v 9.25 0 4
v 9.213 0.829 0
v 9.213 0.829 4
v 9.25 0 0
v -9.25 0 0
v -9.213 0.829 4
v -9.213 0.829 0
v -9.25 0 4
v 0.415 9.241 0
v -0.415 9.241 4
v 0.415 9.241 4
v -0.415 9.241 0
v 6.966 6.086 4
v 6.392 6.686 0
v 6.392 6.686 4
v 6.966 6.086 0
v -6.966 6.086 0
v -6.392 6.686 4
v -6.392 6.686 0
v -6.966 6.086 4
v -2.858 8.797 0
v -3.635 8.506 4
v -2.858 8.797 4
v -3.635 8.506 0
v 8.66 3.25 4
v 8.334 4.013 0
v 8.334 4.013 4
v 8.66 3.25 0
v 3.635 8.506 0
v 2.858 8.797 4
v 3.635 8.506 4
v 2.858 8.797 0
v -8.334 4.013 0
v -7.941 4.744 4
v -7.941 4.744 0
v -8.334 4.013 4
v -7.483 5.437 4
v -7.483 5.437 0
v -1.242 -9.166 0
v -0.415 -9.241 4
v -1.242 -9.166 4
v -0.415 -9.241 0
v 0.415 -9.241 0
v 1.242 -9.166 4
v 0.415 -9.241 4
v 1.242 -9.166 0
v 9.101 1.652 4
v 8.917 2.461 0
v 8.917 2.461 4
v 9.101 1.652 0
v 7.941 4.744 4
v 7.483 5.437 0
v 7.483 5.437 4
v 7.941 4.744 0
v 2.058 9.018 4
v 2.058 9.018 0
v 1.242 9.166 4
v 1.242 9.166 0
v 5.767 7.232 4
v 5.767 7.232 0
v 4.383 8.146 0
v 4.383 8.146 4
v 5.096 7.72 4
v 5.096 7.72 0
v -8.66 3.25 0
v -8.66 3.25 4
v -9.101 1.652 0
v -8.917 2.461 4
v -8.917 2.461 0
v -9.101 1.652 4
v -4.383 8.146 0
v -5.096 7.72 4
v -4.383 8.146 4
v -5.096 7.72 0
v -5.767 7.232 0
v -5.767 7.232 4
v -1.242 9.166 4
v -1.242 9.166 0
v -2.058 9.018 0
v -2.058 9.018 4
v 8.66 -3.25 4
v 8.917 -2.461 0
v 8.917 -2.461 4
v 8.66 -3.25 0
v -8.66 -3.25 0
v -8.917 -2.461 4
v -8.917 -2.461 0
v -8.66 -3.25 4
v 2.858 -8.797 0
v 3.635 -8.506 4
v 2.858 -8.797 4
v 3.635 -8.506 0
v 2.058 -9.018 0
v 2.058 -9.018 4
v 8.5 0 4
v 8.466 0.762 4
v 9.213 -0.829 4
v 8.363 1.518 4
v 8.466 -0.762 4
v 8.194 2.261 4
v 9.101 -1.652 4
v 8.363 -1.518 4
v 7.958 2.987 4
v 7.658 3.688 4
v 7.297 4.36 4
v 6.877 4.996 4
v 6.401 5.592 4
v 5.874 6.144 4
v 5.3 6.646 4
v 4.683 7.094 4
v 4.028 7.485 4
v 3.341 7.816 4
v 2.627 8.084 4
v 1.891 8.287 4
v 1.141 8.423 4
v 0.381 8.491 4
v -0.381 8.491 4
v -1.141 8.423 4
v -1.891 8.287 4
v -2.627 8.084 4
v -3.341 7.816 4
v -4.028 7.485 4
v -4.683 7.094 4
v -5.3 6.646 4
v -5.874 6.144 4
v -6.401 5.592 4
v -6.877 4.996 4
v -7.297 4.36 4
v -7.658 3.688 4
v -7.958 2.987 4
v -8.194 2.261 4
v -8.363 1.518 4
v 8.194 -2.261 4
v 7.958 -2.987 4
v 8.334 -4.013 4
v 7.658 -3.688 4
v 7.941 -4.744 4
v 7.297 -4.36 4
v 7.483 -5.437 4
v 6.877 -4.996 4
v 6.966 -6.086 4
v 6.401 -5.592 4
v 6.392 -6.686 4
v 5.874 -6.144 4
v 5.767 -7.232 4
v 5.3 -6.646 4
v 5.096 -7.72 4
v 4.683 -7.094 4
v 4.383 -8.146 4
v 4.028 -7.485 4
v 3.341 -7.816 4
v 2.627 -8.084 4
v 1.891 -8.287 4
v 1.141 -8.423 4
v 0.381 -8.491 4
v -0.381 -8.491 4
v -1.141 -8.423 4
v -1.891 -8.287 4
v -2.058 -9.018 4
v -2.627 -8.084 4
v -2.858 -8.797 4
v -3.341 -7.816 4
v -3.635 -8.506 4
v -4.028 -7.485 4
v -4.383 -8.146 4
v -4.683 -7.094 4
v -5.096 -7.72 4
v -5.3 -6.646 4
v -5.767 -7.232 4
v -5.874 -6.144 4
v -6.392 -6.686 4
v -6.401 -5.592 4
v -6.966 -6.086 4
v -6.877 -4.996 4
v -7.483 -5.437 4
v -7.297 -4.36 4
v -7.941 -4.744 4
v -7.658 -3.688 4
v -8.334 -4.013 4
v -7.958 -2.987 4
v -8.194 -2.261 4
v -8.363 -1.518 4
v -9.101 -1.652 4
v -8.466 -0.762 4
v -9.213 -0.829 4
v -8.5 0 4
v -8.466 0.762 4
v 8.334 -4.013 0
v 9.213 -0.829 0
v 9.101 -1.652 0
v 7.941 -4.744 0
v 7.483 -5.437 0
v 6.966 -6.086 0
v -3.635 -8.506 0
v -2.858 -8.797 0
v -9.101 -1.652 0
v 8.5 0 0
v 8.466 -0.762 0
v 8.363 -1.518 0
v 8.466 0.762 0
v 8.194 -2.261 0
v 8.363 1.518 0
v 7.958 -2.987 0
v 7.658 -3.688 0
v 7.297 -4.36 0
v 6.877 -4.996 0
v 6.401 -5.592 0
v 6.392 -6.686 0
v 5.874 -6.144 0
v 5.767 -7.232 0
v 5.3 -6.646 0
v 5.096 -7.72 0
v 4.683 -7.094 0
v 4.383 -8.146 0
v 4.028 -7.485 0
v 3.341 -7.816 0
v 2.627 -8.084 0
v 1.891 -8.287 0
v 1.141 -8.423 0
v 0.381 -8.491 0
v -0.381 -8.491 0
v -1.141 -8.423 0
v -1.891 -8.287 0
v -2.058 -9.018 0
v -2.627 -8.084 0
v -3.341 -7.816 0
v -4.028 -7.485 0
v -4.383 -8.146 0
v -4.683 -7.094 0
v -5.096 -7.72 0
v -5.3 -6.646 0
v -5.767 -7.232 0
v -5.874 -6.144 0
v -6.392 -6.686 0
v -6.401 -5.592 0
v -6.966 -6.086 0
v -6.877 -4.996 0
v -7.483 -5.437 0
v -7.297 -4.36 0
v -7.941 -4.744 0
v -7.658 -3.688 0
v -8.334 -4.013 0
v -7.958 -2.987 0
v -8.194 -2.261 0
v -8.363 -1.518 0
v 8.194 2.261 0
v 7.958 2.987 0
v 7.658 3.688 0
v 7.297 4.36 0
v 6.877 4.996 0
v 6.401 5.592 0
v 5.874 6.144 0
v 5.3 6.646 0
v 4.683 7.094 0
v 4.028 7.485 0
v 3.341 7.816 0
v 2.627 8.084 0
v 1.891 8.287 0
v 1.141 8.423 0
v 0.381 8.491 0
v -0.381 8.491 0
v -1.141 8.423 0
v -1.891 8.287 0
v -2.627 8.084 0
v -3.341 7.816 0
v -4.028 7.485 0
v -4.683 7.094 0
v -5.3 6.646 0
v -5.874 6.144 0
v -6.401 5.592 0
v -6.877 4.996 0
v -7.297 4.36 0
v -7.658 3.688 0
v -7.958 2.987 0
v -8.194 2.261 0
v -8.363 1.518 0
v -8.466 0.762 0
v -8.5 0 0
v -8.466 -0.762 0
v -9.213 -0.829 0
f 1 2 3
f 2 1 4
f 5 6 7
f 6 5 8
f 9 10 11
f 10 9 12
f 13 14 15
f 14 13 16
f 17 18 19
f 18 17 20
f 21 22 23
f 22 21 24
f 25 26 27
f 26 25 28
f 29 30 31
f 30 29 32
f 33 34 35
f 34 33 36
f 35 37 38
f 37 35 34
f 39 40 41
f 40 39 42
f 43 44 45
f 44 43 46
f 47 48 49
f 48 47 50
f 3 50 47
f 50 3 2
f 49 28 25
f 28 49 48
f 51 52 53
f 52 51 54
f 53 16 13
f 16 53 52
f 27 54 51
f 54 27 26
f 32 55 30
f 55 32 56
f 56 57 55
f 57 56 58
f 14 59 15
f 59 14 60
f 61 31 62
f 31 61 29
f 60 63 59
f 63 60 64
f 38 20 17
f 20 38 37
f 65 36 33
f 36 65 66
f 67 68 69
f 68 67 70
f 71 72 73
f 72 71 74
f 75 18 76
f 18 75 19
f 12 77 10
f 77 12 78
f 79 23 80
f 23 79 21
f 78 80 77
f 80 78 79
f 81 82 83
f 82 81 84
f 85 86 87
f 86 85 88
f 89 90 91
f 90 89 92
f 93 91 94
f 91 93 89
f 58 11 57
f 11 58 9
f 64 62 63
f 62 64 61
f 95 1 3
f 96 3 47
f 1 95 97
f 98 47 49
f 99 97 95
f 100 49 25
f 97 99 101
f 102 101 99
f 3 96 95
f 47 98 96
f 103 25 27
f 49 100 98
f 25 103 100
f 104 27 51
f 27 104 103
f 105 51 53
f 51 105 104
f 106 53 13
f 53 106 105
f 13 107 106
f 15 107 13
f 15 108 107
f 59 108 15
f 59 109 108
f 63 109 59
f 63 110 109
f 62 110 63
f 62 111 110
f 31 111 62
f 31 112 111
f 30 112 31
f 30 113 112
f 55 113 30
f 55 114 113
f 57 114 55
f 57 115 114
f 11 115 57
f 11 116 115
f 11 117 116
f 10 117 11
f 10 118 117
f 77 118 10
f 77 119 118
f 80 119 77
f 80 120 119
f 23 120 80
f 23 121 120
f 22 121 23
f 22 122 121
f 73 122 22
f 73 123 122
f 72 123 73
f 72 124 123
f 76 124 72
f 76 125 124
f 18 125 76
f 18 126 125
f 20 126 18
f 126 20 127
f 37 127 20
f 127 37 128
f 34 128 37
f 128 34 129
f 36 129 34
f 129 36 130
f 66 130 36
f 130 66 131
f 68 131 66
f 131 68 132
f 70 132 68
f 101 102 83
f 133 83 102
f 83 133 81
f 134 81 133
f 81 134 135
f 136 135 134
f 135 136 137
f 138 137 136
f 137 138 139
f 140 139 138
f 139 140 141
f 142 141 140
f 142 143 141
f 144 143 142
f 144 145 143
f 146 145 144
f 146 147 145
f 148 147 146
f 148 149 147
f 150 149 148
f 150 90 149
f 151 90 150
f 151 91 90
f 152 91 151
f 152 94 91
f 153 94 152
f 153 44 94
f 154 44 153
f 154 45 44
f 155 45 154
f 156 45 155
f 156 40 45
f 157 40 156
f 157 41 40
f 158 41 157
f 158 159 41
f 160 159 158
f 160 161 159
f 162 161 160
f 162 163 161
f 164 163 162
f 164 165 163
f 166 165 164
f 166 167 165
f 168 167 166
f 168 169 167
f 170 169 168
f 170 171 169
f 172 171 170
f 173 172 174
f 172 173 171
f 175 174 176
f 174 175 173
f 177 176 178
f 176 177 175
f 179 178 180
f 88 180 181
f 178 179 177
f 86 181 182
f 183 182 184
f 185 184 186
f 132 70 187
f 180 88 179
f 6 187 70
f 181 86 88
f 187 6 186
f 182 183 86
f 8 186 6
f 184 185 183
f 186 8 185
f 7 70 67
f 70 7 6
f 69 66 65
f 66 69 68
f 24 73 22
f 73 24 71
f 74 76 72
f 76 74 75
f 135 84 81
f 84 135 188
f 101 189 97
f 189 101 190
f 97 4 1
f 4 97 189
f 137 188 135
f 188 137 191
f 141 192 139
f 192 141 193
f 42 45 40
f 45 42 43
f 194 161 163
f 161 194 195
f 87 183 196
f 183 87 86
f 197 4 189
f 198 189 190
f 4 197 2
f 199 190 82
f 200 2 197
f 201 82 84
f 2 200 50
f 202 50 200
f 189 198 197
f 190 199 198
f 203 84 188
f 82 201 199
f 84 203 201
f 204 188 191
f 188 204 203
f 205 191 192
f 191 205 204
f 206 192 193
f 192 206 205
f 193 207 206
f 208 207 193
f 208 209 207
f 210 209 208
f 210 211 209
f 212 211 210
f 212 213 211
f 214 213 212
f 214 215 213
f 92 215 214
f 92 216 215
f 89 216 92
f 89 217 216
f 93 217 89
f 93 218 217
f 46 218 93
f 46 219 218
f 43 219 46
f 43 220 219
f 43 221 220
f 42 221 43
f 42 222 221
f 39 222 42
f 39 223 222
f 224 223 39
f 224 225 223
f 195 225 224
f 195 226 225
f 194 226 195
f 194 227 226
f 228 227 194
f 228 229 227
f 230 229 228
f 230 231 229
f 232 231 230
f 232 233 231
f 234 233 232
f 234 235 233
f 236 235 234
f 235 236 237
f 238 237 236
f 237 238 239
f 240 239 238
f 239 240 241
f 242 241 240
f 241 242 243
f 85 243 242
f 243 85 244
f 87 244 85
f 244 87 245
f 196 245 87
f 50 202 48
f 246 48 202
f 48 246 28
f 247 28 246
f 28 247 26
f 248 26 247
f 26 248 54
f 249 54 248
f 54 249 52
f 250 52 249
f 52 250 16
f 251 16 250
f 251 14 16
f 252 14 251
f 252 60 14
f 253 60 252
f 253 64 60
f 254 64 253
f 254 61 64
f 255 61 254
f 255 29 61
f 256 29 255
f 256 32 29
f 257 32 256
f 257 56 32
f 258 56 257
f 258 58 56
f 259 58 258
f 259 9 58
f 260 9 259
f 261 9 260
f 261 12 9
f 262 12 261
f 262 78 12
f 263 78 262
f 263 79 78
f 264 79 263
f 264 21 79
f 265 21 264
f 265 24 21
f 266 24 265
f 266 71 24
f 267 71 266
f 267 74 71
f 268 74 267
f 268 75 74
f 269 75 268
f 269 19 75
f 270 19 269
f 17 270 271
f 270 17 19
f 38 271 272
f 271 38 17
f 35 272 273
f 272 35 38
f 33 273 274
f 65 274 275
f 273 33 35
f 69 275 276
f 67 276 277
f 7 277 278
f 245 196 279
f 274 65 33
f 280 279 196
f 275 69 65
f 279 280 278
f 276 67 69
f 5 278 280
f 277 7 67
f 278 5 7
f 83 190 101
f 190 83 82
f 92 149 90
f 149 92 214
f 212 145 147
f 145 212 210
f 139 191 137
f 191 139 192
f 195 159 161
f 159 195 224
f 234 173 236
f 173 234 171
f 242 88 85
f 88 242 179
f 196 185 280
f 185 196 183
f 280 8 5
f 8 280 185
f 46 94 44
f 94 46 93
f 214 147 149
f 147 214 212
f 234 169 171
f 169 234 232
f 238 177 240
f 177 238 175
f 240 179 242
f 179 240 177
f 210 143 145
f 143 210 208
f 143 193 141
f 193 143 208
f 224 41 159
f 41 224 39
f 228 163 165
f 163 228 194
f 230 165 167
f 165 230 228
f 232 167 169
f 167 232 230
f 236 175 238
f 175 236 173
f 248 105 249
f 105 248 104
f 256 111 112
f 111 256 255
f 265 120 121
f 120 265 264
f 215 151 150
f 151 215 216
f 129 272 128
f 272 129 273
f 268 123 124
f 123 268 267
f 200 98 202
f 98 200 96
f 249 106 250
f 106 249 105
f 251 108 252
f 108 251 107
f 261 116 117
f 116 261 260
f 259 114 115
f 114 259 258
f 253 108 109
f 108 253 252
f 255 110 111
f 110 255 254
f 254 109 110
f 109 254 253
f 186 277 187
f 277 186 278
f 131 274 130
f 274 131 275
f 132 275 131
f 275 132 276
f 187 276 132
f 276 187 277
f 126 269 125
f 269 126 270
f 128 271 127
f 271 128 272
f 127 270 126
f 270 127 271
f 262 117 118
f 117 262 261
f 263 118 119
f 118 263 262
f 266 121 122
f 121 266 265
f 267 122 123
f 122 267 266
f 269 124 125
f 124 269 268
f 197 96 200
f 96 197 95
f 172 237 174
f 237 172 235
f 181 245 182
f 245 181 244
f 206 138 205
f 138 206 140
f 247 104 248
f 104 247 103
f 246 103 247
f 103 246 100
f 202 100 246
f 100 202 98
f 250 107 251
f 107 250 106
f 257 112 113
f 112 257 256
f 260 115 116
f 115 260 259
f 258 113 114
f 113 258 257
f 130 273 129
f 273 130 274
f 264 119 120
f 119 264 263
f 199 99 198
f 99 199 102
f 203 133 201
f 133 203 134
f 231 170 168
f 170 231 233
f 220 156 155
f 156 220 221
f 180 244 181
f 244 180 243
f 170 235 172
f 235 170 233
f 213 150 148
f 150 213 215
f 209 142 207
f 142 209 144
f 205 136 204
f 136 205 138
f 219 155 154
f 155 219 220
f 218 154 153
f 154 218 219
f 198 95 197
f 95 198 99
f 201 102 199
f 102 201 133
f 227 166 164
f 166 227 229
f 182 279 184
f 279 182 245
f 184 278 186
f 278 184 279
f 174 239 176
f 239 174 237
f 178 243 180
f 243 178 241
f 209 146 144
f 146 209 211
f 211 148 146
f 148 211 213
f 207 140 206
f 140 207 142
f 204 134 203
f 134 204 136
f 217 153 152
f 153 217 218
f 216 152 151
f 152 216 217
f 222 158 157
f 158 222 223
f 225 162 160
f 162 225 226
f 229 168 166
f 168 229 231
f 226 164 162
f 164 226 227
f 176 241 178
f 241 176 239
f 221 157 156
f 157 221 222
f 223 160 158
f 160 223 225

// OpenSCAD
$fn=70;

difference() {
    cylinder(d=18.5, h=4);
    cylinder(d=17, h=7);
}
